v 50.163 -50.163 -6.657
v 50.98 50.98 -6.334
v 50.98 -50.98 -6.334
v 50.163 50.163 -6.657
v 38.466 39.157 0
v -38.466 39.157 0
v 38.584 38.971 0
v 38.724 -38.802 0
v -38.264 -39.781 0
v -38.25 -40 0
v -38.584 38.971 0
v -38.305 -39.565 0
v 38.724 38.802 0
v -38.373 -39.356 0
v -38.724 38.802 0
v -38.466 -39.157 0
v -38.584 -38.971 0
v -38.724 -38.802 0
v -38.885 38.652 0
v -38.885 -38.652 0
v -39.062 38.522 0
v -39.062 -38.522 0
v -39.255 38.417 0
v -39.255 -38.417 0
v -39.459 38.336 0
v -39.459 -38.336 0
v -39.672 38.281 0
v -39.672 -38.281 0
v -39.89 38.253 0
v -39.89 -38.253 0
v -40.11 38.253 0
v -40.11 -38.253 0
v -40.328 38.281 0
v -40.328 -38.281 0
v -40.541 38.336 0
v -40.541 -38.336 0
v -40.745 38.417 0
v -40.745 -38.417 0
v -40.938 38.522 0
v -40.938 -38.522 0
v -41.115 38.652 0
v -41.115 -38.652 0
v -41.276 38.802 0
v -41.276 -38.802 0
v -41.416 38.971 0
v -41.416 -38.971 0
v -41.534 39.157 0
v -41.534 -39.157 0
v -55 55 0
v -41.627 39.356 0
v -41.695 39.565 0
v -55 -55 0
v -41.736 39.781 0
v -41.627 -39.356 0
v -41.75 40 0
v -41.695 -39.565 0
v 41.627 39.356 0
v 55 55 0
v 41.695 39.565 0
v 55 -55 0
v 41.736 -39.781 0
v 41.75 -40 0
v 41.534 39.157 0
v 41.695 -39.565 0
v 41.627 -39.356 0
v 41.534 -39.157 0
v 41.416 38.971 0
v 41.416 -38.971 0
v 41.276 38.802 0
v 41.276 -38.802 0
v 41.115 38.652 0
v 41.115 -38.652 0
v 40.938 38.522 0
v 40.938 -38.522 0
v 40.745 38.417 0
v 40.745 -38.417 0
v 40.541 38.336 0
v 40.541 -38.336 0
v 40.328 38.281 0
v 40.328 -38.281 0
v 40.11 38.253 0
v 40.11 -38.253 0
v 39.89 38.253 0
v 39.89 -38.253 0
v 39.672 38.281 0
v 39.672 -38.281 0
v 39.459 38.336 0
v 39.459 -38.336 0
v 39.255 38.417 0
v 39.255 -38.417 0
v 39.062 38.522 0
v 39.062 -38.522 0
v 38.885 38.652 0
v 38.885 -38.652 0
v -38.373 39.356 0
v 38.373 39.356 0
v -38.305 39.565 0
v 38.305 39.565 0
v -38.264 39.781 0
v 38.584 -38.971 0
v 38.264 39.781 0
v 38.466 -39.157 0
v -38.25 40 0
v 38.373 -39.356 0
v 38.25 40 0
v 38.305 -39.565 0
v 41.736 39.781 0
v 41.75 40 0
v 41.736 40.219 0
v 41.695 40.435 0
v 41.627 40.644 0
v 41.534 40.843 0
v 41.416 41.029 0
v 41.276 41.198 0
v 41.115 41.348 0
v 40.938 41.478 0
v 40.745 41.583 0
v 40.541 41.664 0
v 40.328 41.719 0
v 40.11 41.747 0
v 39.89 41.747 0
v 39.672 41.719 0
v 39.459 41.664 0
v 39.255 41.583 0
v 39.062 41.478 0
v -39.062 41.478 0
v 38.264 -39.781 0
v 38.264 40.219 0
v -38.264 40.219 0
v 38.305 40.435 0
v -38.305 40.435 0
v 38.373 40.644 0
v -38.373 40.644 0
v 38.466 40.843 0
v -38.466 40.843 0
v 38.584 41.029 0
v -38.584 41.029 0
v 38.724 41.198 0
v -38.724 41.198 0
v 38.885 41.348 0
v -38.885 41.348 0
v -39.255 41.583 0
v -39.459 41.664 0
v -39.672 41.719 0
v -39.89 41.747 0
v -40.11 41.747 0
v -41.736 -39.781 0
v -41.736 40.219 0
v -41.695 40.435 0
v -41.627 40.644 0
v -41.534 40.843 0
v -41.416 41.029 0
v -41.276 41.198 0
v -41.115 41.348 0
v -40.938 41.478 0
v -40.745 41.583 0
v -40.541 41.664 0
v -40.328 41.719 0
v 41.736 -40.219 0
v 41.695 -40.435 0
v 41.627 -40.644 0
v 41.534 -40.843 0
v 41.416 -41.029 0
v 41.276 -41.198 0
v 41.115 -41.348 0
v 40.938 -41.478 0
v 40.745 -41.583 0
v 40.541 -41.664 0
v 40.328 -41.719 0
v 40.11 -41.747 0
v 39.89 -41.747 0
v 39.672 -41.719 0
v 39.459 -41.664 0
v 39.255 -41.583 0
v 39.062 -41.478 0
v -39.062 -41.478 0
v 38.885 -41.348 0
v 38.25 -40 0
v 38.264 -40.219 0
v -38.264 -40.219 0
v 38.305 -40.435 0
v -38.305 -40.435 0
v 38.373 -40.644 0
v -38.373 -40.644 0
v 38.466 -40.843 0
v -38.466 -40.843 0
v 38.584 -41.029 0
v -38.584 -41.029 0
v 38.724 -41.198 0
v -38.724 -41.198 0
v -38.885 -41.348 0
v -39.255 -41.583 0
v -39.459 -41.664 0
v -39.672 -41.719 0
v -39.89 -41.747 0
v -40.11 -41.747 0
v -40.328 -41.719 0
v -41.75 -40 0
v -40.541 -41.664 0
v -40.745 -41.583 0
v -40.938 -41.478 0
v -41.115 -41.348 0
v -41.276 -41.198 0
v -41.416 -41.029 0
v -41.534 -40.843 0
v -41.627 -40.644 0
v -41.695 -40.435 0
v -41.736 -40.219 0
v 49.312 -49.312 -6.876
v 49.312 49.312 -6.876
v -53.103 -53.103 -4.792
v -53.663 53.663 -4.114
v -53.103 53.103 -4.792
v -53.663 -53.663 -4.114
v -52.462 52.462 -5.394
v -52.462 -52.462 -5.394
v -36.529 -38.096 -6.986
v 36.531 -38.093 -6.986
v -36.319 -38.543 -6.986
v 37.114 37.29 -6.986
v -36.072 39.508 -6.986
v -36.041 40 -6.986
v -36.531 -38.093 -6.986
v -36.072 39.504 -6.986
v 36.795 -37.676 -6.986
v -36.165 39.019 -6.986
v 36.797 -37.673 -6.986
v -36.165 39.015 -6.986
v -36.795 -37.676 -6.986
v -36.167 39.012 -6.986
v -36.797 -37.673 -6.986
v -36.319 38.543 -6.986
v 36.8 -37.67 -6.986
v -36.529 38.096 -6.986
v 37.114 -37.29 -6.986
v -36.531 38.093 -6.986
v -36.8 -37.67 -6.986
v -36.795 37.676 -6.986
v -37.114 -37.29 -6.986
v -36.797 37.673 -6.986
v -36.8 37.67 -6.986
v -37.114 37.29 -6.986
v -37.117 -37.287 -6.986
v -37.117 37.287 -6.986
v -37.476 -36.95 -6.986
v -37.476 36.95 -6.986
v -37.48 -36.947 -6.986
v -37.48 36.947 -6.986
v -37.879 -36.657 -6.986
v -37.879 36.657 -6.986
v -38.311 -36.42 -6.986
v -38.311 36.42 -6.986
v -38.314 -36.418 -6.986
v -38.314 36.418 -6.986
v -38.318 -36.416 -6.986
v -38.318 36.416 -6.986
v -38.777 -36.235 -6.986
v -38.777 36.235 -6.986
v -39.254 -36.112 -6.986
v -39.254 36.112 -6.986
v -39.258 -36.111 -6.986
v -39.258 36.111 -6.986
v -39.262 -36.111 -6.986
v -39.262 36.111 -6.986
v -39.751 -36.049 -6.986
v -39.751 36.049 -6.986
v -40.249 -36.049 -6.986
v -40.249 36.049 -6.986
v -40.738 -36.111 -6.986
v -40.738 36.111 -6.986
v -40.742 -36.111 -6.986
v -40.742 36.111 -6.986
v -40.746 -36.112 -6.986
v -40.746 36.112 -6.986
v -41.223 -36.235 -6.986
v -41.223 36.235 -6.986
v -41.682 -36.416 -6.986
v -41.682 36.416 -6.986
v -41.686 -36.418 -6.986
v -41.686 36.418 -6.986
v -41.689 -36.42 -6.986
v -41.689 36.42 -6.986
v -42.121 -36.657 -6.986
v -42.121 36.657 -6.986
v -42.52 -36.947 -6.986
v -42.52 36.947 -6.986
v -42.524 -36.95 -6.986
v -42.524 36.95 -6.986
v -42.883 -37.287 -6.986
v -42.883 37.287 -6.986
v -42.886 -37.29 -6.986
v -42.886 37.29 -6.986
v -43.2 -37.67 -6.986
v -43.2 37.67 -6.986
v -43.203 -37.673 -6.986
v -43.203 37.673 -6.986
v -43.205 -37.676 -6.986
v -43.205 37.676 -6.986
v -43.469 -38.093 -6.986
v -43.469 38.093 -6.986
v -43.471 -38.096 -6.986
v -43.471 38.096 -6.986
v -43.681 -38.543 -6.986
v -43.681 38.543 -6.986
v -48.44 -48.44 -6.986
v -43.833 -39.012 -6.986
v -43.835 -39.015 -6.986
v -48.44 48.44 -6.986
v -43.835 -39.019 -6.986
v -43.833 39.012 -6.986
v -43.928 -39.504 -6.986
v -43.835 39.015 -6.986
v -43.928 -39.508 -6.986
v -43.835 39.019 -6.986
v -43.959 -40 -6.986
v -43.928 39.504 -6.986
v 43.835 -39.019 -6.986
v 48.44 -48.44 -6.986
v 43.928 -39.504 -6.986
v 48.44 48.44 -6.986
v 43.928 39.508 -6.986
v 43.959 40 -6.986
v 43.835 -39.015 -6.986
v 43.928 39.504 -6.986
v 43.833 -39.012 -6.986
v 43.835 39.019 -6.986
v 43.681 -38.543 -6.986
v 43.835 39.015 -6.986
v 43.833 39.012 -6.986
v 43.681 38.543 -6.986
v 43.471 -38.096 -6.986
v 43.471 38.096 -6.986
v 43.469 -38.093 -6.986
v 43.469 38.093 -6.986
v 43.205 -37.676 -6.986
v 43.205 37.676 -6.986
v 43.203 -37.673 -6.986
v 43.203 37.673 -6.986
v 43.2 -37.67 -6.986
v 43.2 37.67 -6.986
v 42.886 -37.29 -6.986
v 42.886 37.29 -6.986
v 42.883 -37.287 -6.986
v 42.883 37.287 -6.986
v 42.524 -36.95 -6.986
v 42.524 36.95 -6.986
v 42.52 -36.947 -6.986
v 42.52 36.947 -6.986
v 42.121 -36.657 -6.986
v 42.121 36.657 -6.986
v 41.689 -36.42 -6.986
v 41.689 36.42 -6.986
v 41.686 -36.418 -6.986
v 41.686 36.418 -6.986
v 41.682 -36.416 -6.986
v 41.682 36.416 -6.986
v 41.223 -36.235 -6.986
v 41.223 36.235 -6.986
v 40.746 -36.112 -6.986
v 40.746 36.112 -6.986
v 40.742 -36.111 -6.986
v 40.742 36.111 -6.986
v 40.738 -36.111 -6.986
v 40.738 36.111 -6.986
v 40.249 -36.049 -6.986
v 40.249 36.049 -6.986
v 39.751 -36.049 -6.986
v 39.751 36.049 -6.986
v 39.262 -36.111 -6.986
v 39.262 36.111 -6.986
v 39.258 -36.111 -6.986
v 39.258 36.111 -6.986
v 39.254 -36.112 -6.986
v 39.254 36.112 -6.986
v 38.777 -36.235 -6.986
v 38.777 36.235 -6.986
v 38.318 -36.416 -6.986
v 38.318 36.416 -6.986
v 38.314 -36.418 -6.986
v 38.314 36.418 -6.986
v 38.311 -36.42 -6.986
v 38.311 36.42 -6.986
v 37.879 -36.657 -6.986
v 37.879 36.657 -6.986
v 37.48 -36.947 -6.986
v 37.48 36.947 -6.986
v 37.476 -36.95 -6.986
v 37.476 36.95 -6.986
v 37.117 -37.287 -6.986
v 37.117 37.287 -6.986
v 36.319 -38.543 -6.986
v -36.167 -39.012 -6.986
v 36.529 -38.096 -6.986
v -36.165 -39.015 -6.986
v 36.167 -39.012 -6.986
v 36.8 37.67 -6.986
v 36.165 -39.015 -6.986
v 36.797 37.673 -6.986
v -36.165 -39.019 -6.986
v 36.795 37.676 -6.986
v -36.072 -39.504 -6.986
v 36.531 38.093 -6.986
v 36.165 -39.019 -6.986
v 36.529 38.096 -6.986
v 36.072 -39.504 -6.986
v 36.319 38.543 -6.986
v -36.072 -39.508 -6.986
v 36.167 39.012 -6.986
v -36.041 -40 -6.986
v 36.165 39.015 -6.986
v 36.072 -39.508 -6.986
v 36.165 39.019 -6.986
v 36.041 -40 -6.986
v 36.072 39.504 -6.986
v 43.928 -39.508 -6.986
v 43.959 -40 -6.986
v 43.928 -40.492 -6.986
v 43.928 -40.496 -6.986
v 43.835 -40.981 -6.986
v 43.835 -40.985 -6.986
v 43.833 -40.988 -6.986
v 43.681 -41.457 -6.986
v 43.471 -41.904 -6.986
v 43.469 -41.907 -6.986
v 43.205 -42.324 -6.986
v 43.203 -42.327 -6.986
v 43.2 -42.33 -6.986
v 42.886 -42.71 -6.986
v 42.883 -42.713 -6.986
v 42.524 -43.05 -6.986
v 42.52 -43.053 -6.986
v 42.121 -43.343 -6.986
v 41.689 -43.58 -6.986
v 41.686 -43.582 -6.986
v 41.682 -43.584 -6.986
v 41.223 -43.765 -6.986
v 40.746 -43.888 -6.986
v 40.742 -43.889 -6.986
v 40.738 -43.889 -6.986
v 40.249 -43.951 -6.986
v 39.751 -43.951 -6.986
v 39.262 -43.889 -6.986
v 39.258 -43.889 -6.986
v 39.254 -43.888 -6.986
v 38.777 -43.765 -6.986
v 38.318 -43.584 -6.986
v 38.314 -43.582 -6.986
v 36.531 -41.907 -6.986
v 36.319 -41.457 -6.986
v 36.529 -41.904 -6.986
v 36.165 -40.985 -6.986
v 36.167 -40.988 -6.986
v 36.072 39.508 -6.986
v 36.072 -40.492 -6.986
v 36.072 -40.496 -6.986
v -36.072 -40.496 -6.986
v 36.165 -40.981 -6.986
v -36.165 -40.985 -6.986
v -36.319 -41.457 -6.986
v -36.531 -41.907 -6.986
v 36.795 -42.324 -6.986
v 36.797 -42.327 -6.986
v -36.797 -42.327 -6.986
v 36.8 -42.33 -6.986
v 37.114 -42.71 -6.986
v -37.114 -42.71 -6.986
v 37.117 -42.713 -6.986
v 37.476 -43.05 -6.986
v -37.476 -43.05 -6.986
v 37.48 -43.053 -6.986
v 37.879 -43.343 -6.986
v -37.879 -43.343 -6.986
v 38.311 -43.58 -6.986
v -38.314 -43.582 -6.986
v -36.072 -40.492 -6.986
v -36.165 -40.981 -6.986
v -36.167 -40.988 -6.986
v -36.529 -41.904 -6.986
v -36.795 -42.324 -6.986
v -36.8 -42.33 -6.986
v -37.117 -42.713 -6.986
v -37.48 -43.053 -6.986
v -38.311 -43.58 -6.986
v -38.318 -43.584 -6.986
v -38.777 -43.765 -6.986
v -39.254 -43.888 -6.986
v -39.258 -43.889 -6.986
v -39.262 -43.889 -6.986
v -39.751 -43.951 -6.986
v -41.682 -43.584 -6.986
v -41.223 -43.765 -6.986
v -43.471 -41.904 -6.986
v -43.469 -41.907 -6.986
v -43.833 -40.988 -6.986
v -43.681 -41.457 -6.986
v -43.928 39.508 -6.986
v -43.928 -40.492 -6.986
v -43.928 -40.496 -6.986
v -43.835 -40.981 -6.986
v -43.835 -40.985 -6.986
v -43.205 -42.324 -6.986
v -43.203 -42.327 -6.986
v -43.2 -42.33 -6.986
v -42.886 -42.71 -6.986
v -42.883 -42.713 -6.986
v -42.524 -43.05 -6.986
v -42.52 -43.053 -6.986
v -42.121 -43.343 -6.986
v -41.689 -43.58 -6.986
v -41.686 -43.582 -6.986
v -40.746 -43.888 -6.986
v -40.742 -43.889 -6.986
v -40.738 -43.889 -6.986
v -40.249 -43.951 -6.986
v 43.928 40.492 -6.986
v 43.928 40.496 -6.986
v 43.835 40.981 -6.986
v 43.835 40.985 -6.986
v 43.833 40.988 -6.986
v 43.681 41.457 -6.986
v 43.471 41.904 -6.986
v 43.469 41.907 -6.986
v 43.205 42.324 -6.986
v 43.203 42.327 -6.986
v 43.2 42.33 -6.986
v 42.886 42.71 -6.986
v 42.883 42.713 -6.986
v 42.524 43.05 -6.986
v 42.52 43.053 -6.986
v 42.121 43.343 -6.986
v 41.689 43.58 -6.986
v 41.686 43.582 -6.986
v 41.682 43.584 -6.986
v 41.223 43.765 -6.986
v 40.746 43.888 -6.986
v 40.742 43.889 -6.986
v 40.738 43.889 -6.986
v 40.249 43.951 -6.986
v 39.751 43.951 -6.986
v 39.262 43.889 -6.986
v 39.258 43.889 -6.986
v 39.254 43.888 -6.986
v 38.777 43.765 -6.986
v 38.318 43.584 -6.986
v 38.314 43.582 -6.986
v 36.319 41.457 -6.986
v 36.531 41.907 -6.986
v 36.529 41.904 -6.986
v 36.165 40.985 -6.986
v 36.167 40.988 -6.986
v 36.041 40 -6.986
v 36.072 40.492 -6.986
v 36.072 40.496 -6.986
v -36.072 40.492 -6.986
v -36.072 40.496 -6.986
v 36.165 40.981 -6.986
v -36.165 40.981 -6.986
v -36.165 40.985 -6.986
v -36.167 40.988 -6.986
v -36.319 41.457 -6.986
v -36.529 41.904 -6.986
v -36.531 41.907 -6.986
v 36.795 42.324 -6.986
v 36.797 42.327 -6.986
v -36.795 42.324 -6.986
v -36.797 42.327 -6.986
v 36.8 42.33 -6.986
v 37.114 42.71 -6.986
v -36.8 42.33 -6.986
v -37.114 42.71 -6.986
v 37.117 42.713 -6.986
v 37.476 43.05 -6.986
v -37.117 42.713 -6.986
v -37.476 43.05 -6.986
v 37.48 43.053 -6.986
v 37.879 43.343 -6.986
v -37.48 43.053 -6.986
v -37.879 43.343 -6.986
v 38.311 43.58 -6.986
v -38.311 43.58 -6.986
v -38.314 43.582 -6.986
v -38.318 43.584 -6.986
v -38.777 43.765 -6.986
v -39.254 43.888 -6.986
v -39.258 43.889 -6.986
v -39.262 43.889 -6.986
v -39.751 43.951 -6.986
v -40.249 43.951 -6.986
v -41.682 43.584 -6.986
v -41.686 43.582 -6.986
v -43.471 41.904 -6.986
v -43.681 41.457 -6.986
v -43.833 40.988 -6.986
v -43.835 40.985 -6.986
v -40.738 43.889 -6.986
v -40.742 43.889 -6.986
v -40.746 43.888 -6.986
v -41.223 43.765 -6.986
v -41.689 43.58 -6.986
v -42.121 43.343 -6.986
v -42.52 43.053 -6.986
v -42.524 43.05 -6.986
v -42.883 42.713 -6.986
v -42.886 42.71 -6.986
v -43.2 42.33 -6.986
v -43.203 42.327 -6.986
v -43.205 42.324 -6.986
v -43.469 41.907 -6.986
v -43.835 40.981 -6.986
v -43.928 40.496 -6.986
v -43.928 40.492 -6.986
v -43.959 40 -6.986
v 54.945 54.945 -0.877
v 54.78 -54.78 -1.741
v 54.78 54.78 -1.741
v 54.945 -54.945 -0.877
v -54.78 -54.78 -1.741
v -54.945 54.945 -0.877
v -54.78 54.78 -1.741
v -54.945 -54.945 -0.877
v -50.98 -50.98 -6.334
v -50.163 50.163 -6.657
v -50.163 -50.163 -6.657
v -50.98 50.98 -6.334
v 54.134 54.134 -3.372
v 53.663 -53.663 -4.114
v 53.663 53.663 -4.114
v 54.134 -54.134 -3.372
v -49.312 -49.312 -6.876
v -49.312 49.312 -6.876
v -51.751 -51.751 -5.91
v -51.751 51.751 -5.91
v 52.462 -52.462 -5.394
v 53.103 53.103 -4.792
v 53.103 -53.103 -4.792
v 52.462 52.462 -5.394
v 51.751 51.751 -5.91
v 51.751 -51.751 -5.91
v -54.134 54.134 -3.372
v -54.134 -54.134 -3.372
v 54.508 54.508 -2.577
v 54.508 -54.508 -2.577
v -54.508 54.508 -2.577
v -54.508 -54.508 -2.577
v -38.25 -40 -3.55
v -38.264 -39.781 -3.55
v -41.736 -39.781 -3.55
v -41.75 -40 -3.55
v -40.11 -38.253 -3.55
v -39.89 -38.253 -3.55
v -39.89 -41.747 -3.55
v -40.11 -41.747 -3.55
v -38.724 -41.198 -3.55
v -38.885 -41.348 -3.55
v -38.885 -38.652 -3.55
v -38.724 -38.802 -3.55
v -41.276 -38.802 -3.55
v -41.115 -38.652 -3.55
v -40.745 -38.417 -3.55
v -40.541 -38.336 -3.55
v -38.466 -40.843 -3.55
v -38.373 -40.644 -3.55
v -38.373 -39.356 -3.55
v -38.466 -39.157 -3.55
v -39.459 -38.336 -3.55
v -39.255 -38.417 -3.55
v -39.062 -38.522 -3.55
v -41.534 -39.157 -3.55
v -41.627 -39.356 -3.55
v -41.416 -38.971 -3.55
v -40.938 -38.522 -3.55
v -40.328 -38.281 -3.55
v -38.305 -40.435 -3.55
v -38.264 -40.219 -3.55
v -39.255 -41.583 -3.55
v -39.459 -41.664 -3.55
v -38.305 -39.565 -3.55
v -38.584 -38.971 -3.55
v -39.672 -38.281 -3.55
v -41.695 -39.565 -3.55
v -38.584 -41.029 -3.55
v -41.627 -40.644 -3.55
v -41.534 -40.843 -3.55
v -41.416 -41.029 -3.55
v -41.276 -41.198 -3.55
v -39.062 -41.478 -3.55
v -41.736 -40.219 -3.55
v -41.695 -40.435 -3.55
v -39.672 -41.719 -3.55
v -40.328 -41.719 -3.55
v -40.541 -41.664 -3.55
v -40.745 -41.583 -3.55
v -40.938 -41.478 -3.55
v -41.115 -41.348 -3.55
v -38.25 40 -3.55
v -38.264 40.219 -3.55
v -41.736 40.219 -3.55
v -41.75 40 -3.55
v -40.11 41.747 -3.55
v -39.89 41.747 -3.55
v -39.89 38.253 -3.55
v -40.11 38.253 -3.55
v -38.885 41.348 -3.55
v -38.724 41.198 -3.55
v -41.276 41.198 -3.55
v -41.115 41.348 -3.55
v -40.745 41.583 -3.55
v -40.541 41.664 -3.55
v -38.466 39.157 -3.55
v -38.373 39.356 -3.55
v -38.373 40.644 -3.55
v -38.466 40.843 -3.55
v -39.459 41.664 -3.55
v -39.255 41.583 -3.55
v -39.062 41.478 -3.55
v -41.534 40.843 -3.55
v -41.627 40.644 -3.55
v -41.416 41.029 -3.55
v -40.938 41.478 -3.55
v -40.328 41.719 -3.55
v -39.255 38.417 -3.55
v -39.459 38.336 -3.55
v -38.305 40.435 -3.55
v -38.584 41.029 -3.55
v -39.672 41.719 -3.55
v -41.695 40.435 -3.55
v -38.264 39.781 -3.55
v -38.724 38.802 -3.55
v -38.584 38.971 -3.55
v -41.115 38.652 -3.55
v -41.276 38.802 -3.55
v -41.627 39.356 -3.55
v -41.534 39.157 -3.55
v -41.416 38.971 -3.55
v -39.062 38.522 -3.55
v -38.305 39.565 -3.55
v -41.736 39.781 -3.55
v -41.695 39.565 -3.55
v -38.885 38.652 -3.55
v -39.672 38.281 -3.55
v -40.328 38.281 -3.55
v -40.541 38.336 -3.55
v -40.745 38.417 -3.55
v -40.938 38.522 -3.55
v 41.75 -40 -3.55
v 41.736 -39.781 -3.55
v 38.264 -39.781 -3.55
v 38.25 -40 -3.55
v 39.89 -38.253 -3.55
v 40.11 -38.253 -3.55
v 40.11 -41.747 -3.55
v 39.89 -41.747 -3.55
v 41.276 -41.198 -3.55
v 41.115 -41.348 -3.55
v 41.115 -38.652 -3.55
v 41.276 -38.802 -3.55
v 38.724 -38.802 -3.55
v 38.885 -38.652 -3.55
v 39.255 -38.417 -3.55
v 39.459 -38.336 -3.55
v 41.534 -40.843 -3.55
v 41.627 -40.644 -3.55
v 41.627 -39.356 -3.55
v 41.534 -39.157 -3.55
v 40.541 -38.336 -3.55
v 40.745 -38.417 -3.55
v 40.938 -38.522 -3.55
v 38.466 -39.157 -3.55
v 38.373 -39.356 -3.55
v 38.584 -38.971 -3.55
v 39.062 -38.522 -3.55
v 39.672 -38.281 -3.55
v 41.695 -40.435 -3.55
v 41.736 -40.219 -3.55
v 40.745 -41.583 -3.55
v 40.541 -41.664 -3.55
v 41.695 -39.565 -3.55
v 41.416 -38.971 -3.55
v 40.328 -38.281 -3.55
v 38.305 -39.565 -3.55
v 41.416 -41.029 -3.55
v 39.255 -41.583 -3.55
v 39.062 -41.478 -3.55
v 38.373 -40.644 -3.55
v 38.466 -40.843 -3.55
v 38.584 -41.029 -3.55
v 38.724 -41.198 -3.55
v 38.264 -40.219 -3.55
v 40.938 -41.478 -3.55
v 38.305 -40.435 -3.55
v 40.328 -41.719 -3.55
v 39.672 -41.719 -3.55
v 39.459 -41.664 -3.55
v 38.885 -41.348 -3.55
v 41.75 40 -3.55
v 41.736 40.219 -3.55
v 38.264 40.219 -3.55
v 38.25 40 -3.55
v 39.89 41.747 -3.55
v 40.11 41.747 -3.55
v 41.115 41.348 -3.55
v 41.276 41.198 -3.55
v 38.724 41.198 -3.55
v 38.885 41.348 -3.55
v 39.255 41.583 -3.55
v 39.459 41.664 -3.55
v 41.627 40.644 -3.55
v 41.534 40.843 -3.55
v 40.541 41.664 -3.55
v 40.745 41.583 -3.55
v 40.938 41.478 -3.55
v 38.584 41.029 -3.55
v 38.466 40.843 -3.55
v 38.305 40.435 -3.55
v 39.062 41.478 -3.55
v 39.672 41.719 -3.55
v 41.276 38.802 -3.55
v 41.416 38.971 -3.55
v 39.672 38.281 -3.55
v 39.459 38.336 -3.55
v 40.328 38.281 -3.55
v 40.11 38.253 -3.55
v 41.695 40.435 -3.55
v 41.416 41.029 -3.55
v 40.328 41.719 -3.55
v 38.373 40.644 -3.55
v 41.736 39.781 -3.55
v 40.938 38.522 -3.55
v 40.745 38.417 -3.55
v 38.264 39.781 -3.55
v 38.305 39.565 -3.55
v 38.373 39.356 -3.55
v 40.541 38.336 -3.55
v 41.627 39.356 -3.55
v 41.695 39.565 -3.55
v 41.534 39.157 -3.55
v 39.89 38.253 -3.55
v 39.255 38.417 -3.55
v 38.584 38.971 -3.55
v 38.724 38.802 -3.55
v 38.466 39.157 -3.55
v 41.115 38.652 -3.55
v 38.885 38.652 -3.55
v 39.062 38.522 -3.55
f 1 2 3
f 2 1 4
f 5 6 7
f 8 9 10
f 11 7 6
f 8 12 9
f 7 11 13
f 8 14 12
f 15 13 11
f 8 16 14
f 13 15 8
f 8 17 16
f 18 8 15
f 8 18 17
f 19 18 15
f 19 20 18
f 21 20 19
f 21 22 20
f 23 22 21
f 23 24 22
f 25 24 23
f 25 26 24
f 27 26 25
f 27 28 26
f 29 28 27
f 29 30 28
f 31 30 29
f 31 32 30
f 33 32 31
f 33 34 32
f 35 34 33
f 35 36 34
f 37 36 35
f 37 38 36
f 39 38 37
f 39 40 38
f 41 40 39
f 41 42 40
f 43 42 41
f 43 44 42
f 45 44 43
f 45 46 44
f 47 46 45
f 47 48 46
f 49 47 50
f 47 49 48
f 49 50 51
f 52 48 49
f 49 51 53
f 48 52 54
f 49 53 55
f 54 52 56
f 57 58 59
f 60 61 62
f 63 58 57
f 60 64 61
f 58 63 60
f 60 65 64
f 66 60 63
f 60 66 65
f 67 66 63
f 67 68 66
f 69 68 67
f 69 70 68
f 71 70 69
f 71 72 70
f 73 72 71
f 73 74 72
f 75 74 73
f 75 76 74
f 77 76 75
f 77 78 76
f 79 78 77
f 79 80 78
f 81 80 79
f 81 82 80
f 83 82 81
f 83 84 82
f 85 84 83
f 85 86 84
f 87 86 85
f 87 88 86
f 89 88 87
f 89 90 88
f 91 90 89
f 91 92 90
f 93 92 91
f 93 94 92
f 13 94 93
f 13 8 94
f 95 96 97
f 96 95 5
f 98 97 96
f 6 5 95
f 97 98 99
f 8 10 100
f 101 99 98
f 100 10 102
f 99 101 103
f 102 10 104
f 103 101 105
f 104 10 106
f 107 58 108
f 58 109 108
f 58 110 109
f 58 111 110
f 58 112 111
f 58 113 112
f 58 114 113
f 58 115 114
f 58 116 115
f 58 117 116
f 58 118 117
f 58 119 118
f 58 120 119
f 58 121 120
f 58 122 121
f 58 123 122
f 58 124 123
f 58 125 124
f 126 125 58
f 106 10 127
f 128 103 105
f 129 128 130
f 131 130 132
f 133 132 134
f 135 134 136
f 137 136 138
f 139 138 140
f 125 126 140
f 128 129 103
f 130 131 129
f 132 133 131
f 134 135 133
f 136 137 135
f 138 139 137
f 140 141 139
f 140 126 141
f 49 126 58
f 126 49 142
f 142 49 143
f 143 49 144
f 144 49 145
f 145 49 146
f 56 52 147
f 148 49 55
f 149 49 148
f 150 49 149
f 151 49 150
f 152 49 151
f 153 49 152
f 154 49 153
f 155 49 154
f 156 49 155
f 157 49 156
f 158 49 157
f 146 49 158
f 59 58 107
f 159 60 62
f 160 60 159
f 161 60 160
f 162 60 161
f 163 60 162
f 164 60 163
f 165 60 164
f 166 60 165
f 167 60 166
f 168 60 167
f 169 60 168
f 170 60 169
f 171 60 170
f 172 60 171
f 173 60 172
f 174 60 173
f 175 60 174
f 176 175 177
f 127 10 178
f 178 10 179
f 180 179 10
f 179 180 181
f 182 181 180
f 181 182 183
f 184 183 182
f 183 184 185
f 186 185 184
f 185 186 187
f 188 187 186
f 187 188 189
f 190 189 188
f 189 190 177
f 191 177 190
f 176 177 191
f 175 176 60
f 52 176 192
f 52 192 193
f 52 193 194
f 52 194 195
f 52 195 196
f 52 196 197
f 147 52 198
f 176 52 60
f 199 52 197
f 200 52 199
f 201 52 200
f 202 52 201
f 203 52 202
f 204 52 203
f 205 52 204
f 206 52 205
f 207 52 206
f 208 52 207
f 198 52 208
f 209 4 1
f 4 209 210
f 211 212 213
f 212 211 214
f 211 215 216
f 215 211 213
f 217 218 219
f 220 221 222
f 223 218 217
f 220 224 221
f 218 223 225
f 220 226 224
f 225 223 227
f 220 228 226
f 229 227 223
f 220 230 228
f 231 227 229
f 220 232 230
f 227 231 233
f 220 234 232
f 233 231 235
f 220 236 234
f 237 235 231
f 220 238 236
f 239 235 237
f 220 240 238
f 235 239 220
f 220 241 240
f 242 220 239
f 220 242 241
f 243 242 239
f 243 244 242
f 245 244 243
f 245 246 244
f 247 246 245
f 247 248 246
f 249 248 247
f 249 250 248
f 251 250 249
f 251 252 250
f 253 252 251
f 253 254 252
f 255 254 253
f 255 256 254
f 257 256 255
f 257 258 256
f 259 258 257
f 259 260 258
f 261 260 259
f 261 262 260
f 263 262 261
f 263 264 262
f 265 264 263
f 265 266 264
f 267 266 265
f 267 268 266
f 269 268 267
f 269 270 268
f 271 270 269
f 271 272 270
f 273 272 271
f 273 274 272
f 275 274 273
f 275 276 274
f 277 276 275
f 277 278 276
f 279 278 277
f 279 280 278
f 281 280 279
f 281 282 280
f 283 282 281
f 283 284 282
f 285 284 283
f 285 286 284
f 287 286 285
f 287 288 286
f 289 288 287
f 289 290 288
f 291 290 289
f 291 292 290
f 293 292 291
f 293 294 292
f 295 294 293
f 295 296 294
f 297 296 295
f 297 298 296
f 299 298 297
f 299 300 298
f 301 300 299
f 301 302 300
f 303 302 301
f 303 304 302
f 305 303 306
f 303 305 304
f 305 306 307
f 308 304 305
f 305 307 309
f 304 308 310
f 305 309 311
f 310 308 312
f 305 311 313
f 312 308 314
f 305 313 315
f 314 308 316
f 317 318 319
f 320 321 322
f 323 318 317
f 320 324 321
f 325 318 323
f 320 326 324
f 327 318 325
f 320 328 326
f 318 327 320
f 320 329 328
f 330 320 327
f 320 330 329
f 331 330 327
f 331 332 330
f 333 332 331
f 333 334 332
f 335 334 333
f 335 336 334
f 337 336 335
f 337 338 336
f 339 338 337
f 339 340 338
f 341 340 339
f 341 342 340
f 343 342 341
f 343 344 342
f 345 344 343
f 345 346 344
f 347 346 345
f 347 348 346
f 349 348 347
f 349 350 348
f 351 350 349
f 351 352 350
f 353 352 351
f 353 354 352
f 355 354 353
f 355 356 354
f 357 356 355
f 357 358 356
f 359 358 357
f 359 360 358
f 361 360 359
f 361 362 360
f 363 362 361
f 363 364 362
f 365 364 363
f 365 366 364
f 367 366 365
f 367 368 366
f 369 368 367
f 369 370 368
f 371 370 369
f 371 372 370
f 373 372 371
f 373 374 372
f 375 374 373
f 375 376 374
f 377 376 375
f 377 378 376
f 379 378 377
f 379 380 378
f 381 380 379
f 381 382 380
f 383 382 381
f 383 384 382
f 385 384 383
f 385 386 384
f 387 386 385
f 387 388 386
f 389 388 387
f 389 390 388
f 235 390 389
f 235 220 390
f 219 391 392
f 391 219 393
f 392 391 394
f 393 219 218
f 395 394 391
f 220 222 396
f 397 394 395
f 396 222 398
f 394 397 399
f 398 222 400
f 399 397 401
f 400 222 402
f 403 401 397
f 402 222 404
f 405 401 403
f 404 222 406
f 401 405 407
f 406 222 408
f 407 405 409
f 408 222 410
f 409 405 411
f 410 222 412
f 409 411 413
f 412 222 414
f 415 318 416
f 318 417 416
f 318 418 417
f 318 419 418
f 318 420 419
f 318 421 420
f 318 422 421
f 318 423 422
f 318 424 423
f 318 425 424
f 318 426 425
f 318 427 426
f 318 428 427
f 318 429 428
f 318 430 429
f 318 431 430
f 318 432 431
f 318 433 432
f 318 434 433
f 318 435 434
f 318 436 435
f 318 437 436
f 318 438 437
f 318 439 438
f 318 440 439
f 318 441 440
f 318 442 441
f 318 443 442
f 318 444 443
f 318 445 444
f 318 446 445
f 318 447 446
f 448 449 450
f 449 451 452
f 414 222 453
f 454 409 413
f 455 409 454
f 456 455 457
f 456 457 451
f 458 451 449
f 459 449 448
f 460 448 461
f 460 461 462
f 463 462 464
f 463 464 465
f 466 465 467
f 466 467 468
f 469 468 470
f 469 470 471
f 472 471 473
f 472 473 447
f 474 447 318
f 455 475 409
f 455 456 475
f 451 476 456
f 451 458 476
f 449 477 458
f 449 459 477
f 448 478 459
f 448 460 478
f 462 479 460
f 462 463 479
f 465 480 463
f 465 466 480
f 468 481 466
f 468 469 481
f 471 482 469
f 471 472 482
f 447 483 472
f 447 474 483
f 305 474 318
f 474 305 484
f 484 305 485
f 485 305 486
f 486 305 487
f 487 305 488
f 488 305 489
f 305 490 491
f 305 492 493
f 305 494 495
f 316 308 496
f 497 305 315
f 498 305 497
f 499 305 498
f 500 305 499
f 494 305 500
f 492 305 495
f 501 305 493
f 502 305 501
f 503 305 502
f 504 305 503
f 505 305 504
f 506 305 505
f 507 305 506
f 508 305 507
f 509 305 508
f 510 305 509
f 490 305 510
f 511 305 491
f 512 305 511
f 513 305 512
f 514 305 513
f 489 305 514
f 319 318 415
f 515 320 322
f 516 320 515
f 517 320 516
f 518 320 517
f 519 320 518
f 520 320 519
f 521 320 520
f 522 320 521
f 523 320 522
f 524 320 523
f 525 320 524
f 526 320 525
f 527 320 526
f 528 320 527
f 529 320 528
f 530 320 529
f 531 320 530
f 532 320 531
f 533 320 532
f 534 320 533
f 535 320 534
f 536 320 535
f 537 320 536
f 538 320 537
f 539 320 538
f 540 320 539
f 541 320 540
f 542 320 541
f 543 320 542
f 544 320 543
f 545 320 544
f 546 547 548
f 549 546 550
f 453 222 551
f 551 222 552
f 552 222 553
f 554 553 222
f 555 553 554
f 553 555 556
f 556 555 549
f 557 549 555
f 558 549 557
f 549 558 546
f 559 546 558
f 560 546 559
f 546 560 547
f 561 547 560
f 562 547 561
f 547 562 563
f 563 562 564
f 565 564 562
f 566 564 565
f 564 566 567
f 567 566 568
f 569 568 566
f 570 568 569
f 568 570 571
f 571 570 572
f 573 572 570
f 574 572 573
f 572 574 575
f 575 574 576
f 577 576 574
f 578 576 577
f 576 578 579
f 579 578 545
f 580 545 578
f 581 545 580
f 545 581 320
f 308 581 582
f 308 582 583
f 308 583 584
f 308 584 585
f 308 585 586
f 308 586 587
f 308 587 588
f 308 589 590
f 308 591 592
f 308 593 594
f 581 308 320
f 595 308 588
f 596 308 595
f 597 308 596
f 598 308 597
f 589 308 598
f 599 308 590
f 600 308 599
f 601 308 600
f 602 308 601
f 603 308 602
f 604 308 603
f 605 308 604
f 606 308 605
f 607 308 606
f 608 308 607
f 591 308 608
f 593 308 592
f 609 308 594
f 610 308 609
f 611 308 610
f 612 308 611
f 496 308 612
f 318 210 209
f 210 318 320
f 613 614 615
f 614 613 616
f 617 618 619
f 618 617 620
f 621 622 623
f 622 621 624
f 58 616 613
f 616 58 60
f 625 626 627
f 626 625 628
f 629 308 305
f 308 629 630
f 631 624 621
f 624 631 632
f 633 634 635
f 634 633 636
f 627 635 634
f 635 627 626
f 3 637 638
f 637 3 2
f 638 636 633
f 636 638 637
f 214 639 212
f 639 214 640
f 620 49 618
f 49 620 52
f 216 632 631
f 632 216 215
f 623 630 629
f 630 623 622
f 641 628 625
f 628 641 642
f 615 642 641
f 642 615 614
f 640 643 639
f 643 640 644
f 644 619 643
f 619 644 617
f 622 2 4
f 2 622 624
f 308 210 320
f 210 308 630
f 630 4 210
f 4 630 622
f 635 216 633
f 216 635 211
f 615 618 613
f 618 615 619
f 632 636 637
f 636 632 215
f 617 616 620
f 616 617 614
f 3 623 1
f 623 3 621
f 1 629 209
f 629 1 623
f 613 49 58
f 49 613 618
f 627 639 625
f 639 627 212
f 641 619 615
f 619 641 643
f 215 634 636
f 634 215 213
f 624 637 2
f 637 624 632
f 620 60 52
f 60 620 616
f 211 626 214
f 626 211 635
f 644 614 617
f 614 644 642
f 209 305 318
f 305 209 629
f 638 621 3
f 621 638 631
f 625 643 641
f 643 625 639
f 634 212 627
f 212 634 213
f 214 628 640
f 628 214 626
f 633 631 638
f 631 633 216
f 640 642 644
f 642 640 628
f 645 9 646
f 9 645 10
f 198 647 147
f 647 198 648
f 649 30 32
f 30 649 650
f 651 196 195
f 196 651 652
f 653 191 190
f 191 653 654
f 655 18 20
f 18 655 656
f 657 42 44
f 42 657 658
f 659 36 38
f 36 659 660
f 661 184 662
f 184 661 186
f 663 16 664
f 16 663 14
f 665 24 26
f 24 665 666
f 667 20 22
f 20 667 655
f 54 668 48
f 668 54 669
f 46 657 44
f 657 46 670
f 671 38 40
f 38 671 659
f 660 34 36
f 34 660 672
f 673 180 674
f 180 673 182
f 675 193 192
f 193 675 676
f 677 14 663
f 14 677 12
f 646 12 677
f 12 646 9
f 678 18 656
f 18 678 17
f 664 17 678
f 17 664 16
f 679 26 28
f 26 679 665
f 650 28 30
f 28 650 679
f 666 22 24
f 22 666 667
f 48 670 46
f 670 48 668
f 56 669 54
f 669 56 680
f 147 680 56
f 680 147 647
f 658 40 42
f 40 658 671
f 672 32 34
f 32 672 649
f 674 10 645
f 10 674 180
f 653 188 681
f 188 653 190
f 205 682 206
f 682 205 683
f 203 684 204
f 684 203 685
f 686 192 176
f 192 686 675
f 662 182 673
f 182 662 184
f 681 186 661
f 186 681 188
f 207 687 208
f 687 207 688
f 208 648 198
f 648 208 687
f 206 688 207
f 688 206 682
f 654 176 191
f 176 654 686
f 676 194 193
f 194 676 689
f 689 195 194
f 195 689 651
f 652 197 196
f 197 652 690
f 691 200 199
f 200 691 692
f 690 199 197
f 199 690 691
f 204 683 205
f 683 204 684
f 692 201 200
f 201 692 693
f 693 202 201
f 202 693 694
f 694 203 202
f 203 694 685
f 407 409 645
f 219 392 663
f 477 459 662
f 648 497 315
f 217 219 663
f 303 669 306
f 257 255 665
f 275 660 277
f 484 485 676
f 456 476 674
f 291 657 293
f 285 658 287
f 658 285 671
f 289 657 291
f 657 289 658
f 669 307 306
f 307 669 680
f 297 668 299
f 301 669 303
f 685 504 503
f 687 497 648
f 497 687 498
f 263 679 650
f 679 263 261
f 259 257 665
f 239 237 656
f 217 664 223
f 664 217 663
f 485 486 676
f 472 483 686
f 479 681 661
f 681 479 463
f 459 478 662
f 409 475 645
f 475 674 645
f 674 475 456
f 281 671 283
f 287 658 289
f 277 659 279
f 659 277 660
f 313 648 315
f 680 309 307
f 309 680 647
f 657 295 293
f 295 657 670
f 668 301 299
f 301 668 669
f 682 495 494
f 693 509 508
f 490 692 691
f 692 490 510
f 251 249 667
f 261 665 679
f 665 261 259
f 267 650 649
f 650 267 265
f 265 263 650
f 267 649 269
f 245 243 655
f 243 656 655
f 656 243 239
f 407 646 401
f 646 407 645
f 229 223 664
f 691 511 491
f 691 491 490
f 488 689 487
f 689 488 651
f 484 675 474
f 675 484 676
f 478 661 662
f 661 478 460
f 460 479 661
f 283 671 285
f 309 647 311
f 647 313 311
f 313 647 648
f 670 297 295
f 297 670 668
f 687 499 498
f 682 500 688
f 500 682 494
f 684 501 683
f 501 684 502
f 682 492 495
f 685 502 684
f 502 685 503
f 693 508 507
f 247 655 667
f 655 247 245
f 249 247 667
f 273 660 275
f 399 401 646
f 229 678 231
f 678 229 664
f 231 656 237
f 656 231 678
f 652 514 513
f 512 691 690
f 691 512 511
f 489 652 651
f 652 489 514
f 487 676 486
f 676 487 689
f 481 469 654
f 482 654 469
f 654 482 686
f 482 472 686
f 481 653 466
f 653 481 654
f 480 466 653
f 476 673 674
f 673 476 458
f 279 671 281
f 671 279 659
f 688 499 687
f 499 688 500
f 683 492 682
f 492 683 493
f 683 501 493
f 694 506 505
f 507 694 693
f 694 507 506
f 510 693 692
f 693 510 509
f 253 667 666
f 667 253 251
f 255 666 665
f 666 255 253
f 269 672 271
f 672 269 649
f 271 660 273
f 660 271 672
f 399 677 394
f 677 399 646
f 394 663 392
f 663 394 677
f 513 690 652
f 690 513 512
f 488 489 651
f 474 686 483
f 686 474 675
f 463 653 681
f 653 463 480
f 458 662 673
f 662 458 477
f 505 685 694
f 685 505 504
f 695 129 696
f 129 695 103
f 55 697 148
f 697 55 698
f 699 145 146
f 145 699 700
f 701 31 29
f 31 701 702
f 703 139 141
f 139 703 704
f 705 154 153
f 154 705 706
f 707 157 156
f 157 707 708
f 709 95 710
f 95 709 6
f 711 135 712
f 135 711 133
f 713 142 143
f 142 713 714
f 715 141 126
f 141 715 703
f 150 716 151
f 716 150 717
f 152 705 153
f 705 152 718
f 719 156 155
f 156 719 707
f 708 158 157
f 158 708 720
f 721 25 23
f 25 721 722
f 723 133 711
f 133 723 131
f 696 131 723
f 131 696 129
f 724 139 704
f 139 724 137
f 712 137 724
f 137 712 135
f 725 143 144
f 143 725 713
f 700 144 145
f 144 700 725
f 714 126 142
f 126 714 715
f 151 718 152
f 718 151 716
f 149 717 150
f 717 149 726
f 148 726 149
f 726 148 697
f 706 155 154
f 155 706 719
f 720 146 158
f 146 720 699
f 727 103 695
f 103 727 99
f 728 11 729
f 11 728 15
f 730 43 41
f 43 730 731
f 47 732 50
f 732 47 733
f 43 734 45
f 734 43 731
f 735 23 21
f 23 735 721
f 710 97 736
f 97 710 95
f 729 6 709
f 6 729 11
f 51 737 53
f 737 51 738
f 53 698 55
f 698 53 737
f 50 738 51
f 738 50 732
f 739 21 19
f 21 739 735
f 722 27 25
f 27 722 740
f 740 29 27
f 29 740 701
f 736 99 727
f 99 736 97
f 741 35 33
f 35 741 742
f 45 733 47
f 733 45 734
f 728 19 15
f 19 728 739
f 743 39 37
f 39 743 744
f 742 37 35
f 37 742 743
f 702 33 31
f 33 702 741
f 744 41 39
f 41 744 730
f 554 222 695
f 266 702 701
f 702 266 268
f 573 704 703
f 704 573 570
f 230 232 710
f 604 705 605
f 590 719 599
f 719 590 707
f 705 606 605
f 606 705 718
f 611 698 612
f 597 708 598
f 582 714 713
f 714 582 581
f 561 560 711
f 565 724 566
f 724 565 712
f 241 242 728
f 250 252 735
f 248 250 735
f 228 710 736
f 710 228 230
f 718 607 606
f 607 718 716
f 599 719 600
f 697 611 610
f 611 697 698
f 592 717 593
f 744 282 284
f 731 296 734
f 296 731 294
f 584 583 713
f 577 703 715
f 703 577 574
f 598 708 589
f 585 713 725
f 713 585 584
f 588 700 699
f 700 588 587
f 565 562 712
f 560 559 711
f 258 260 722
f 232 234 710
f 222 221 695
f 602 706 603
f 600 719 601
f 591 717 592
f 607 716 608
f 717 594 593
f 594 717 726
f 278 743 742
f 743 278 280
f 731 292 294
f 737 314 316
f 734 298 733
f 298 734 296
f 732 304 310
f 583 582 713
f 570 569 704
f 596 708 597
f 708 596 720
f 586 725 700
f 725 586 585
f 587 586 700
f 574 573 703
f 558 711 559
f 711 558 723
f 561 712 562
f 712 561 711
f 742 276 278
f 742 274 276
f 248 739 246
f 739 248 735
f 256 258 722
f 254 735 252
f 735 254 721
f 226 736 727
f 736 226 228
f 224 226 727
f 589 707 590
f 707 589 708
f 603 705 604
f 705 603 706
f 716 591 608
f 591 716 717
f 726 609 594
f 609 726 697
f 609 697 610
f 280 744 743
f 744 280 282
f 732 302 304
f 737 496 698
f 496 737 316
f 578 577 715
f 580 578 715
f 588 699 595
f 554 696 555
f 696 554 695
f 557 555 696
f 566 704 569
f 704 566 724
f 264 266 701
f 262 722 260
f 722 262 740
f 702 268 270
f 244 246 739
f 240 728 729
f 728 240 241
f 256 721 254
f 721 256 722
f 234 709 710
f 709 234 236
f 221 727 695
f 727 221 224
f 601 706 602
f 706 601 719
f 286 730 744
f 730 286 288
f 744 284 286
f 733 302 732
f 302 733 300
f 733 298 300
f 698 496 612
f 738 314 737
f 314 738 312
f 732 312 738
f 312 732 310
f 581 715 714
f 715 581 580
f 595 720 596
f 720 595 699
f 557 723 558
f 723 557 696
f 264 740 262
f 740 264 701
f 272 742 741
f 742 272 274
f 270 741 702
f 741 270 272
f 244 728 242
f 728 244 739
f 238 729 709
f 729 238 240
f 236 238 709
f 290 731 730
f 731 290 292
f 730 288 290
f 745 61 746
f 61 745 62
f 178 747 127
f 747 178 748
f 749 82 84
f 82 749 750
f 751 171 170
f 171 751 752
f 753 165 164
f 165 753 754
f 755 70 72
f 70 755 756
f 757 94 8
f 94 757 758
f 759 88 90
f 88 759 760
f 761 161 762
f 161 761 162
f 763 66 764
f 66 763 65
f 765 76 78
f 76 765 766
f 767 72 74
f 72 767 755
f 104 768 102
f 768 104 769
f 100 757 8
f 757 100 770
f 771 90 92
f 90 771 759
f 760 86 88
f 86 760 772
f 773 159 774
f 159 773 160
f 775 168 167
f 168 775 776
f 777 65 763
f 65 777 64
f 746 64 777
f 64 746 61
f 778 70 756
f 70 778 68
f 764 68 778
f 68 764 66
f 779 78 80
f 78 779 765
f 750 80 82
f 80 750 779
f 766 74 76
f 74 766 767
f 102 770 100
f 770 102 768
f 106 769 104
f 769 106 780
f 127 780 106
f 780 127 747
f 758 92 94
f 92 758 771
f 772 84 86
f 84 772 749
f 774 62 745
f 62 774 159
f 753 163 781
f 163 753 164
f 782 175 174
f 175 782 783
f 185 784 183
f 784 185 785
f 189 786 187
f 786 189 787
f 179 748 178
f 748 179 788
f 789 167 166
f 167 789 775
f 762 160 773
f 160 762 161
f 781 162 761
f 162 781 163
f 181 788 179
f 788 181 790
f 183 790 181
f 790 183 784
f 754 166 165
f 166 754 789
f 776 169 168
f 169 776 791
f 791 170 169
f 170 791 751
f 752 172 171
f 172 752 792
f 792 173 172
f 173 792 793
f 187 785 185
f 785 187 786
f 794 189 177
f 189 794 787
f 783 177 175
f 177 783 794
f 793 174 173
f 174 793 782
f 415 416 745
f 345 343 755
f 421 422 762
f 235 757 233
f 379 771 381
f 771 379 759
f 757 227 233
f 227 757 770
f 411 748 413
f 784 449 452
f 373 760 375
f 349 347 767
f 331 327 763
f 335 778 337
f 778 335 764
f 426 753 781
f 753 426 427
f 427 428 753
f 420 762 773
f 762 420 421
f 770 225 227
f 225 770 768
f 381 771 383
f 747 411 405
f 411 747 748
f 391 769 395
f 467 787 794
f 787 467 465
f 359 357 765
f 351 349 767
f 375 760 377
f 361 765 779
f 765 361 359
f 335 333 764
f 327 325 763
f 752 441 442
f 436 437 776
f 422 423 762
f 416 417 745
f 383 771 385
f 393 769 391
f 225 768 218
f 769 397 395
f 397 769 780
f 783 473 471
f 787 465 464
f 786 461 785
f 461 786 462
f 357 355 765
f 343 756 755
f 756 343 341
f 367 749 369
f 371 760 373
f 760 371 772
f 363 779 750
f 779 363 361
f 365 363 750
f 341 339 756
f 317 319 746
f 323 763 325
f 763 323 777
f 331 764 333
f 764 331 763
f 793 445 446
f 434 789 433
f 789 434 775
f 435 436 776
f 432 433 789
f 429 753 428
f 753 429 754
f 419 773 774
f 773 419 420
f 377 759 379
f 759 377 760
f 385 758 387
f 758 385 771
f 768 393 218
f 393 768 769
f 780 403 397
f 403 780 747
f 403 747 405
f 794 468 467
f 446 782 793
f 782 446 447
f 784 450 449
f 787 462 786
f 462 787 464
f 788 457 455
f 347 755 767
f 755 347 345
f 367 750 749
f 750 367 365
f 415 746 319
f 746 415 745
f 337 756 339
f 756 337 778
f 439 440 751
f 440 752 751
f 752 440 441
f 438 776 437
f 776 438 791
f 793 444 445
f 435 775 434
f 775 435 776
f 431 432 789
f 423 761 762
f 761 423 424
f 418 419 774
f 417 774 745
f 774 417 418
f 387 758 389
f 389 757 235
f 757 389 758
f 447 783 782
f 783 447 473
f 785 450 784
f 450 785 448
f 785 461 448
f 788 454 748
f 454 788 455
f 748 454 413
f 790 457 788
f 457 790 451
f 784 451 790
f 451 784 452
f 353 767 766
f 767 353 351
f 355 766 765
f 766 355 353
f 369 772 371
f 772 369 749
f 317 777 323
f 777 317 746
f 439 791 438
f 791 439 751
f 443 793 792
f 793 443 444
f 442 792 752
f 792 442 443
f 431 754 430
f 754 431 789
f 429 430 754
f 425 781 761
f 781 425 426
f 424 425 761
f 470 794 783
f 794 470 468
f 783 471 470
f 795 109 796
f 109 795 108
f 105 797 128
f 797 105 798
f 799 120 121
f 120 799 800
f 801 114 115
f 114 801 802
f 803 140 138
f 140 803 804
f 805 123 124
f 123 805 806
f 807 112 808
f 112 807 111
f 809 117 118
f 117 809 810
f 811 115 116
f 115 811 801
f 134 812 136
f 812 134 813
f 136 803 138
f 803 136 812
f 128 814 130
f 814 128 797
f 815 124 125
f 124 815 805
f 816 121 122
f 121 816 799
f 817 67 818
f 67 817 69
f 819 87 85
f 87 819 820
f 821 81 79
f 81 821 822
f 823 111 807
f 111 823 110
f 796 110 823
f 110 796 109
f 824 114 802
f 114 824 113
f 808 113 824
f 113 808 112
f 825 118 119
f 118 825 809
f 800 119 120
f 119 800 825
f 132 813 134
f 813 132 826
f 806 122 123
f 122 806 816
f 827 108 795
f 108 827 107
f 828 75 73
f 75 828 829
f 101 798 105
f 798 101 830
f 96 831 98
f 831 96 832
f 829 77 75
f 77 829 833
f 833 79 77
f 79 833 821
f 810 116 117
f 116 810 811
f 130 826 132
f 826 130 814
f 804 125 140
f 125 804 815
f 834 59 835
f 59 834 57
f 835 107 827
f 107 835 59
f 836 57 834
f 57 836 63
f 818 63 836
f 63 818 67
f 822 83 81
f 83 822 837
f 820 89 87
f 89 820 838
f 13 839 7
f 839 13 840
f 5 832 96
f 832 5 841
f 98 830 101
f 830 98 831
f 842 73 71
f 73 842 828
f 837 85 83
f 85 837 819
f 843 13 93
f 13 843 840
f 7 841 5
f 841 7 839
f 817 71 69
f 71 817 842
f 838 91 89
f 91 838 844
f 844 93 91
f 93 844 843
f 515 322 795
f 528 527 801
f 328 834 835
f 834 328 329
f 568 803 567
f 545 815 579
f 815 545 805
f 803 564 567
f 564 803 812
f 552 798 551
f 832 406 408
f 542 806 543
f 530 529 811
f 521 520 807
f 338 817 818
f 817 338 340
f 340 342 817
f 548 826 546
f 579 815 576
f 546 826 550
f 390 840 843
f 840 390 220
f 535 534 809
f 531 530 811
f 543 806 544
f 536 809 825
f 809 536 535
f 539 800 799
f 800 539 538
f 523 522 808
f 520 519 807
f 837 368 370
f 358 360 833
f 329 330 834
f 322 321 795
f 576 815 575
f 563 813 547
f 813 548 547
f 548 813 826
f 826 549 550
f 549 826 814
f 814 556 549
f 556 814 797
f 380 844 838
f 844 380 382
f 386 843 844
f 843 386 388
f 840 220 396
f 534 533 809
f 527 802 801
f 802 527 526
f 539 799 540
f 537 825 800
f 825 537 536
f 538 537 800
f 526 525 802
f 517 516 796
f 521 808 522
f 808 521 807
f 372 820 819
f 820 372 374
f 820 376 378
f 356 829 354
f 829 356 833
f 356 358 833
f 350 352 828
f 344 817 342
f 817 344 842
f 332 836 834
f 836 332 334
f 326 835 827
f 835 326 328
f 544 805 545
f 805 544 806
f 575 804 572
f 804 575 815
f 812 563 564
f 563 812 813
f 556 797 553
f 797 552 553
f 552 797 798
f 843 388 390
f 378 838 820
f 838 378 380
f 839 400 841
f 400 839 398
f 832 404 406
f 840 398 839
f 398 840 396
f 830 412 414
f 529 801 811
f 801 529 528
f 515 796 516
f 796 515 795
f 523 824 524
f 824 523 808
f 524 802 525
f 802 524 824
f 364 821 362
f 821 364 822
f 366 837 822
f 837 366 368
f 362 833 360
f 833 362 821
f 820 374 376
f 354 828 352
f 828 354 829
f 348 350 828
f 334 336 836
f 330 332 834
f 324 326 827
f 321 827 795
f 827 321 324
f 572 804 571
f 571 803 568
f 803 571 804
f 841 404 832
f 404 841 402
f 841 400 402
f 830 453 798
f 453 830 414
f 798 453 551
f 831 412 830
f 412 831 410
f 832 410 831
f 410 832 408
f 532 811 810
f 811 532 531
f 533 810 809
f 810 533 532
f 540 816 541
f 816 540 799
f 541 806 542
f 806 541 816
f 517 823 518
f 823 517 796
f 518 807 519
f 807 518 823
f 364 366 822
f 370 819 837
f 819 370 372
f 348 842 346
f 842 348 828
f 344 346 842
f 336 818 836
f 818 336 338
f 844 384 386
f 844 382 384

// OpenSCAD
thick=7;
rad=thick/2;
fudge=0.1;
$fn=50;

difference(){
  intersection(){
    plate();
    rotate(90) plate();
  }
  for (ix=[-1,1],iy=[-1,1])
    translate([ix*80/2,iy*80/2,-thick-fudge/2]){
      cylinder(d=3.5,h=thick+fudge);
      cylinder(d1=8,d2=3.5,h=3.5);
  }
}
module plate(){
  rotate([90,0,0]) linear_extrude(110,center=true){
    difference(){
      hull() for (ix=[-1,1]) translate([ix*(110/2-rad*2),0]) circle(rad*2);
      translate([0,thick/2]) square([110,thick],true);
      }
    
  }
}
